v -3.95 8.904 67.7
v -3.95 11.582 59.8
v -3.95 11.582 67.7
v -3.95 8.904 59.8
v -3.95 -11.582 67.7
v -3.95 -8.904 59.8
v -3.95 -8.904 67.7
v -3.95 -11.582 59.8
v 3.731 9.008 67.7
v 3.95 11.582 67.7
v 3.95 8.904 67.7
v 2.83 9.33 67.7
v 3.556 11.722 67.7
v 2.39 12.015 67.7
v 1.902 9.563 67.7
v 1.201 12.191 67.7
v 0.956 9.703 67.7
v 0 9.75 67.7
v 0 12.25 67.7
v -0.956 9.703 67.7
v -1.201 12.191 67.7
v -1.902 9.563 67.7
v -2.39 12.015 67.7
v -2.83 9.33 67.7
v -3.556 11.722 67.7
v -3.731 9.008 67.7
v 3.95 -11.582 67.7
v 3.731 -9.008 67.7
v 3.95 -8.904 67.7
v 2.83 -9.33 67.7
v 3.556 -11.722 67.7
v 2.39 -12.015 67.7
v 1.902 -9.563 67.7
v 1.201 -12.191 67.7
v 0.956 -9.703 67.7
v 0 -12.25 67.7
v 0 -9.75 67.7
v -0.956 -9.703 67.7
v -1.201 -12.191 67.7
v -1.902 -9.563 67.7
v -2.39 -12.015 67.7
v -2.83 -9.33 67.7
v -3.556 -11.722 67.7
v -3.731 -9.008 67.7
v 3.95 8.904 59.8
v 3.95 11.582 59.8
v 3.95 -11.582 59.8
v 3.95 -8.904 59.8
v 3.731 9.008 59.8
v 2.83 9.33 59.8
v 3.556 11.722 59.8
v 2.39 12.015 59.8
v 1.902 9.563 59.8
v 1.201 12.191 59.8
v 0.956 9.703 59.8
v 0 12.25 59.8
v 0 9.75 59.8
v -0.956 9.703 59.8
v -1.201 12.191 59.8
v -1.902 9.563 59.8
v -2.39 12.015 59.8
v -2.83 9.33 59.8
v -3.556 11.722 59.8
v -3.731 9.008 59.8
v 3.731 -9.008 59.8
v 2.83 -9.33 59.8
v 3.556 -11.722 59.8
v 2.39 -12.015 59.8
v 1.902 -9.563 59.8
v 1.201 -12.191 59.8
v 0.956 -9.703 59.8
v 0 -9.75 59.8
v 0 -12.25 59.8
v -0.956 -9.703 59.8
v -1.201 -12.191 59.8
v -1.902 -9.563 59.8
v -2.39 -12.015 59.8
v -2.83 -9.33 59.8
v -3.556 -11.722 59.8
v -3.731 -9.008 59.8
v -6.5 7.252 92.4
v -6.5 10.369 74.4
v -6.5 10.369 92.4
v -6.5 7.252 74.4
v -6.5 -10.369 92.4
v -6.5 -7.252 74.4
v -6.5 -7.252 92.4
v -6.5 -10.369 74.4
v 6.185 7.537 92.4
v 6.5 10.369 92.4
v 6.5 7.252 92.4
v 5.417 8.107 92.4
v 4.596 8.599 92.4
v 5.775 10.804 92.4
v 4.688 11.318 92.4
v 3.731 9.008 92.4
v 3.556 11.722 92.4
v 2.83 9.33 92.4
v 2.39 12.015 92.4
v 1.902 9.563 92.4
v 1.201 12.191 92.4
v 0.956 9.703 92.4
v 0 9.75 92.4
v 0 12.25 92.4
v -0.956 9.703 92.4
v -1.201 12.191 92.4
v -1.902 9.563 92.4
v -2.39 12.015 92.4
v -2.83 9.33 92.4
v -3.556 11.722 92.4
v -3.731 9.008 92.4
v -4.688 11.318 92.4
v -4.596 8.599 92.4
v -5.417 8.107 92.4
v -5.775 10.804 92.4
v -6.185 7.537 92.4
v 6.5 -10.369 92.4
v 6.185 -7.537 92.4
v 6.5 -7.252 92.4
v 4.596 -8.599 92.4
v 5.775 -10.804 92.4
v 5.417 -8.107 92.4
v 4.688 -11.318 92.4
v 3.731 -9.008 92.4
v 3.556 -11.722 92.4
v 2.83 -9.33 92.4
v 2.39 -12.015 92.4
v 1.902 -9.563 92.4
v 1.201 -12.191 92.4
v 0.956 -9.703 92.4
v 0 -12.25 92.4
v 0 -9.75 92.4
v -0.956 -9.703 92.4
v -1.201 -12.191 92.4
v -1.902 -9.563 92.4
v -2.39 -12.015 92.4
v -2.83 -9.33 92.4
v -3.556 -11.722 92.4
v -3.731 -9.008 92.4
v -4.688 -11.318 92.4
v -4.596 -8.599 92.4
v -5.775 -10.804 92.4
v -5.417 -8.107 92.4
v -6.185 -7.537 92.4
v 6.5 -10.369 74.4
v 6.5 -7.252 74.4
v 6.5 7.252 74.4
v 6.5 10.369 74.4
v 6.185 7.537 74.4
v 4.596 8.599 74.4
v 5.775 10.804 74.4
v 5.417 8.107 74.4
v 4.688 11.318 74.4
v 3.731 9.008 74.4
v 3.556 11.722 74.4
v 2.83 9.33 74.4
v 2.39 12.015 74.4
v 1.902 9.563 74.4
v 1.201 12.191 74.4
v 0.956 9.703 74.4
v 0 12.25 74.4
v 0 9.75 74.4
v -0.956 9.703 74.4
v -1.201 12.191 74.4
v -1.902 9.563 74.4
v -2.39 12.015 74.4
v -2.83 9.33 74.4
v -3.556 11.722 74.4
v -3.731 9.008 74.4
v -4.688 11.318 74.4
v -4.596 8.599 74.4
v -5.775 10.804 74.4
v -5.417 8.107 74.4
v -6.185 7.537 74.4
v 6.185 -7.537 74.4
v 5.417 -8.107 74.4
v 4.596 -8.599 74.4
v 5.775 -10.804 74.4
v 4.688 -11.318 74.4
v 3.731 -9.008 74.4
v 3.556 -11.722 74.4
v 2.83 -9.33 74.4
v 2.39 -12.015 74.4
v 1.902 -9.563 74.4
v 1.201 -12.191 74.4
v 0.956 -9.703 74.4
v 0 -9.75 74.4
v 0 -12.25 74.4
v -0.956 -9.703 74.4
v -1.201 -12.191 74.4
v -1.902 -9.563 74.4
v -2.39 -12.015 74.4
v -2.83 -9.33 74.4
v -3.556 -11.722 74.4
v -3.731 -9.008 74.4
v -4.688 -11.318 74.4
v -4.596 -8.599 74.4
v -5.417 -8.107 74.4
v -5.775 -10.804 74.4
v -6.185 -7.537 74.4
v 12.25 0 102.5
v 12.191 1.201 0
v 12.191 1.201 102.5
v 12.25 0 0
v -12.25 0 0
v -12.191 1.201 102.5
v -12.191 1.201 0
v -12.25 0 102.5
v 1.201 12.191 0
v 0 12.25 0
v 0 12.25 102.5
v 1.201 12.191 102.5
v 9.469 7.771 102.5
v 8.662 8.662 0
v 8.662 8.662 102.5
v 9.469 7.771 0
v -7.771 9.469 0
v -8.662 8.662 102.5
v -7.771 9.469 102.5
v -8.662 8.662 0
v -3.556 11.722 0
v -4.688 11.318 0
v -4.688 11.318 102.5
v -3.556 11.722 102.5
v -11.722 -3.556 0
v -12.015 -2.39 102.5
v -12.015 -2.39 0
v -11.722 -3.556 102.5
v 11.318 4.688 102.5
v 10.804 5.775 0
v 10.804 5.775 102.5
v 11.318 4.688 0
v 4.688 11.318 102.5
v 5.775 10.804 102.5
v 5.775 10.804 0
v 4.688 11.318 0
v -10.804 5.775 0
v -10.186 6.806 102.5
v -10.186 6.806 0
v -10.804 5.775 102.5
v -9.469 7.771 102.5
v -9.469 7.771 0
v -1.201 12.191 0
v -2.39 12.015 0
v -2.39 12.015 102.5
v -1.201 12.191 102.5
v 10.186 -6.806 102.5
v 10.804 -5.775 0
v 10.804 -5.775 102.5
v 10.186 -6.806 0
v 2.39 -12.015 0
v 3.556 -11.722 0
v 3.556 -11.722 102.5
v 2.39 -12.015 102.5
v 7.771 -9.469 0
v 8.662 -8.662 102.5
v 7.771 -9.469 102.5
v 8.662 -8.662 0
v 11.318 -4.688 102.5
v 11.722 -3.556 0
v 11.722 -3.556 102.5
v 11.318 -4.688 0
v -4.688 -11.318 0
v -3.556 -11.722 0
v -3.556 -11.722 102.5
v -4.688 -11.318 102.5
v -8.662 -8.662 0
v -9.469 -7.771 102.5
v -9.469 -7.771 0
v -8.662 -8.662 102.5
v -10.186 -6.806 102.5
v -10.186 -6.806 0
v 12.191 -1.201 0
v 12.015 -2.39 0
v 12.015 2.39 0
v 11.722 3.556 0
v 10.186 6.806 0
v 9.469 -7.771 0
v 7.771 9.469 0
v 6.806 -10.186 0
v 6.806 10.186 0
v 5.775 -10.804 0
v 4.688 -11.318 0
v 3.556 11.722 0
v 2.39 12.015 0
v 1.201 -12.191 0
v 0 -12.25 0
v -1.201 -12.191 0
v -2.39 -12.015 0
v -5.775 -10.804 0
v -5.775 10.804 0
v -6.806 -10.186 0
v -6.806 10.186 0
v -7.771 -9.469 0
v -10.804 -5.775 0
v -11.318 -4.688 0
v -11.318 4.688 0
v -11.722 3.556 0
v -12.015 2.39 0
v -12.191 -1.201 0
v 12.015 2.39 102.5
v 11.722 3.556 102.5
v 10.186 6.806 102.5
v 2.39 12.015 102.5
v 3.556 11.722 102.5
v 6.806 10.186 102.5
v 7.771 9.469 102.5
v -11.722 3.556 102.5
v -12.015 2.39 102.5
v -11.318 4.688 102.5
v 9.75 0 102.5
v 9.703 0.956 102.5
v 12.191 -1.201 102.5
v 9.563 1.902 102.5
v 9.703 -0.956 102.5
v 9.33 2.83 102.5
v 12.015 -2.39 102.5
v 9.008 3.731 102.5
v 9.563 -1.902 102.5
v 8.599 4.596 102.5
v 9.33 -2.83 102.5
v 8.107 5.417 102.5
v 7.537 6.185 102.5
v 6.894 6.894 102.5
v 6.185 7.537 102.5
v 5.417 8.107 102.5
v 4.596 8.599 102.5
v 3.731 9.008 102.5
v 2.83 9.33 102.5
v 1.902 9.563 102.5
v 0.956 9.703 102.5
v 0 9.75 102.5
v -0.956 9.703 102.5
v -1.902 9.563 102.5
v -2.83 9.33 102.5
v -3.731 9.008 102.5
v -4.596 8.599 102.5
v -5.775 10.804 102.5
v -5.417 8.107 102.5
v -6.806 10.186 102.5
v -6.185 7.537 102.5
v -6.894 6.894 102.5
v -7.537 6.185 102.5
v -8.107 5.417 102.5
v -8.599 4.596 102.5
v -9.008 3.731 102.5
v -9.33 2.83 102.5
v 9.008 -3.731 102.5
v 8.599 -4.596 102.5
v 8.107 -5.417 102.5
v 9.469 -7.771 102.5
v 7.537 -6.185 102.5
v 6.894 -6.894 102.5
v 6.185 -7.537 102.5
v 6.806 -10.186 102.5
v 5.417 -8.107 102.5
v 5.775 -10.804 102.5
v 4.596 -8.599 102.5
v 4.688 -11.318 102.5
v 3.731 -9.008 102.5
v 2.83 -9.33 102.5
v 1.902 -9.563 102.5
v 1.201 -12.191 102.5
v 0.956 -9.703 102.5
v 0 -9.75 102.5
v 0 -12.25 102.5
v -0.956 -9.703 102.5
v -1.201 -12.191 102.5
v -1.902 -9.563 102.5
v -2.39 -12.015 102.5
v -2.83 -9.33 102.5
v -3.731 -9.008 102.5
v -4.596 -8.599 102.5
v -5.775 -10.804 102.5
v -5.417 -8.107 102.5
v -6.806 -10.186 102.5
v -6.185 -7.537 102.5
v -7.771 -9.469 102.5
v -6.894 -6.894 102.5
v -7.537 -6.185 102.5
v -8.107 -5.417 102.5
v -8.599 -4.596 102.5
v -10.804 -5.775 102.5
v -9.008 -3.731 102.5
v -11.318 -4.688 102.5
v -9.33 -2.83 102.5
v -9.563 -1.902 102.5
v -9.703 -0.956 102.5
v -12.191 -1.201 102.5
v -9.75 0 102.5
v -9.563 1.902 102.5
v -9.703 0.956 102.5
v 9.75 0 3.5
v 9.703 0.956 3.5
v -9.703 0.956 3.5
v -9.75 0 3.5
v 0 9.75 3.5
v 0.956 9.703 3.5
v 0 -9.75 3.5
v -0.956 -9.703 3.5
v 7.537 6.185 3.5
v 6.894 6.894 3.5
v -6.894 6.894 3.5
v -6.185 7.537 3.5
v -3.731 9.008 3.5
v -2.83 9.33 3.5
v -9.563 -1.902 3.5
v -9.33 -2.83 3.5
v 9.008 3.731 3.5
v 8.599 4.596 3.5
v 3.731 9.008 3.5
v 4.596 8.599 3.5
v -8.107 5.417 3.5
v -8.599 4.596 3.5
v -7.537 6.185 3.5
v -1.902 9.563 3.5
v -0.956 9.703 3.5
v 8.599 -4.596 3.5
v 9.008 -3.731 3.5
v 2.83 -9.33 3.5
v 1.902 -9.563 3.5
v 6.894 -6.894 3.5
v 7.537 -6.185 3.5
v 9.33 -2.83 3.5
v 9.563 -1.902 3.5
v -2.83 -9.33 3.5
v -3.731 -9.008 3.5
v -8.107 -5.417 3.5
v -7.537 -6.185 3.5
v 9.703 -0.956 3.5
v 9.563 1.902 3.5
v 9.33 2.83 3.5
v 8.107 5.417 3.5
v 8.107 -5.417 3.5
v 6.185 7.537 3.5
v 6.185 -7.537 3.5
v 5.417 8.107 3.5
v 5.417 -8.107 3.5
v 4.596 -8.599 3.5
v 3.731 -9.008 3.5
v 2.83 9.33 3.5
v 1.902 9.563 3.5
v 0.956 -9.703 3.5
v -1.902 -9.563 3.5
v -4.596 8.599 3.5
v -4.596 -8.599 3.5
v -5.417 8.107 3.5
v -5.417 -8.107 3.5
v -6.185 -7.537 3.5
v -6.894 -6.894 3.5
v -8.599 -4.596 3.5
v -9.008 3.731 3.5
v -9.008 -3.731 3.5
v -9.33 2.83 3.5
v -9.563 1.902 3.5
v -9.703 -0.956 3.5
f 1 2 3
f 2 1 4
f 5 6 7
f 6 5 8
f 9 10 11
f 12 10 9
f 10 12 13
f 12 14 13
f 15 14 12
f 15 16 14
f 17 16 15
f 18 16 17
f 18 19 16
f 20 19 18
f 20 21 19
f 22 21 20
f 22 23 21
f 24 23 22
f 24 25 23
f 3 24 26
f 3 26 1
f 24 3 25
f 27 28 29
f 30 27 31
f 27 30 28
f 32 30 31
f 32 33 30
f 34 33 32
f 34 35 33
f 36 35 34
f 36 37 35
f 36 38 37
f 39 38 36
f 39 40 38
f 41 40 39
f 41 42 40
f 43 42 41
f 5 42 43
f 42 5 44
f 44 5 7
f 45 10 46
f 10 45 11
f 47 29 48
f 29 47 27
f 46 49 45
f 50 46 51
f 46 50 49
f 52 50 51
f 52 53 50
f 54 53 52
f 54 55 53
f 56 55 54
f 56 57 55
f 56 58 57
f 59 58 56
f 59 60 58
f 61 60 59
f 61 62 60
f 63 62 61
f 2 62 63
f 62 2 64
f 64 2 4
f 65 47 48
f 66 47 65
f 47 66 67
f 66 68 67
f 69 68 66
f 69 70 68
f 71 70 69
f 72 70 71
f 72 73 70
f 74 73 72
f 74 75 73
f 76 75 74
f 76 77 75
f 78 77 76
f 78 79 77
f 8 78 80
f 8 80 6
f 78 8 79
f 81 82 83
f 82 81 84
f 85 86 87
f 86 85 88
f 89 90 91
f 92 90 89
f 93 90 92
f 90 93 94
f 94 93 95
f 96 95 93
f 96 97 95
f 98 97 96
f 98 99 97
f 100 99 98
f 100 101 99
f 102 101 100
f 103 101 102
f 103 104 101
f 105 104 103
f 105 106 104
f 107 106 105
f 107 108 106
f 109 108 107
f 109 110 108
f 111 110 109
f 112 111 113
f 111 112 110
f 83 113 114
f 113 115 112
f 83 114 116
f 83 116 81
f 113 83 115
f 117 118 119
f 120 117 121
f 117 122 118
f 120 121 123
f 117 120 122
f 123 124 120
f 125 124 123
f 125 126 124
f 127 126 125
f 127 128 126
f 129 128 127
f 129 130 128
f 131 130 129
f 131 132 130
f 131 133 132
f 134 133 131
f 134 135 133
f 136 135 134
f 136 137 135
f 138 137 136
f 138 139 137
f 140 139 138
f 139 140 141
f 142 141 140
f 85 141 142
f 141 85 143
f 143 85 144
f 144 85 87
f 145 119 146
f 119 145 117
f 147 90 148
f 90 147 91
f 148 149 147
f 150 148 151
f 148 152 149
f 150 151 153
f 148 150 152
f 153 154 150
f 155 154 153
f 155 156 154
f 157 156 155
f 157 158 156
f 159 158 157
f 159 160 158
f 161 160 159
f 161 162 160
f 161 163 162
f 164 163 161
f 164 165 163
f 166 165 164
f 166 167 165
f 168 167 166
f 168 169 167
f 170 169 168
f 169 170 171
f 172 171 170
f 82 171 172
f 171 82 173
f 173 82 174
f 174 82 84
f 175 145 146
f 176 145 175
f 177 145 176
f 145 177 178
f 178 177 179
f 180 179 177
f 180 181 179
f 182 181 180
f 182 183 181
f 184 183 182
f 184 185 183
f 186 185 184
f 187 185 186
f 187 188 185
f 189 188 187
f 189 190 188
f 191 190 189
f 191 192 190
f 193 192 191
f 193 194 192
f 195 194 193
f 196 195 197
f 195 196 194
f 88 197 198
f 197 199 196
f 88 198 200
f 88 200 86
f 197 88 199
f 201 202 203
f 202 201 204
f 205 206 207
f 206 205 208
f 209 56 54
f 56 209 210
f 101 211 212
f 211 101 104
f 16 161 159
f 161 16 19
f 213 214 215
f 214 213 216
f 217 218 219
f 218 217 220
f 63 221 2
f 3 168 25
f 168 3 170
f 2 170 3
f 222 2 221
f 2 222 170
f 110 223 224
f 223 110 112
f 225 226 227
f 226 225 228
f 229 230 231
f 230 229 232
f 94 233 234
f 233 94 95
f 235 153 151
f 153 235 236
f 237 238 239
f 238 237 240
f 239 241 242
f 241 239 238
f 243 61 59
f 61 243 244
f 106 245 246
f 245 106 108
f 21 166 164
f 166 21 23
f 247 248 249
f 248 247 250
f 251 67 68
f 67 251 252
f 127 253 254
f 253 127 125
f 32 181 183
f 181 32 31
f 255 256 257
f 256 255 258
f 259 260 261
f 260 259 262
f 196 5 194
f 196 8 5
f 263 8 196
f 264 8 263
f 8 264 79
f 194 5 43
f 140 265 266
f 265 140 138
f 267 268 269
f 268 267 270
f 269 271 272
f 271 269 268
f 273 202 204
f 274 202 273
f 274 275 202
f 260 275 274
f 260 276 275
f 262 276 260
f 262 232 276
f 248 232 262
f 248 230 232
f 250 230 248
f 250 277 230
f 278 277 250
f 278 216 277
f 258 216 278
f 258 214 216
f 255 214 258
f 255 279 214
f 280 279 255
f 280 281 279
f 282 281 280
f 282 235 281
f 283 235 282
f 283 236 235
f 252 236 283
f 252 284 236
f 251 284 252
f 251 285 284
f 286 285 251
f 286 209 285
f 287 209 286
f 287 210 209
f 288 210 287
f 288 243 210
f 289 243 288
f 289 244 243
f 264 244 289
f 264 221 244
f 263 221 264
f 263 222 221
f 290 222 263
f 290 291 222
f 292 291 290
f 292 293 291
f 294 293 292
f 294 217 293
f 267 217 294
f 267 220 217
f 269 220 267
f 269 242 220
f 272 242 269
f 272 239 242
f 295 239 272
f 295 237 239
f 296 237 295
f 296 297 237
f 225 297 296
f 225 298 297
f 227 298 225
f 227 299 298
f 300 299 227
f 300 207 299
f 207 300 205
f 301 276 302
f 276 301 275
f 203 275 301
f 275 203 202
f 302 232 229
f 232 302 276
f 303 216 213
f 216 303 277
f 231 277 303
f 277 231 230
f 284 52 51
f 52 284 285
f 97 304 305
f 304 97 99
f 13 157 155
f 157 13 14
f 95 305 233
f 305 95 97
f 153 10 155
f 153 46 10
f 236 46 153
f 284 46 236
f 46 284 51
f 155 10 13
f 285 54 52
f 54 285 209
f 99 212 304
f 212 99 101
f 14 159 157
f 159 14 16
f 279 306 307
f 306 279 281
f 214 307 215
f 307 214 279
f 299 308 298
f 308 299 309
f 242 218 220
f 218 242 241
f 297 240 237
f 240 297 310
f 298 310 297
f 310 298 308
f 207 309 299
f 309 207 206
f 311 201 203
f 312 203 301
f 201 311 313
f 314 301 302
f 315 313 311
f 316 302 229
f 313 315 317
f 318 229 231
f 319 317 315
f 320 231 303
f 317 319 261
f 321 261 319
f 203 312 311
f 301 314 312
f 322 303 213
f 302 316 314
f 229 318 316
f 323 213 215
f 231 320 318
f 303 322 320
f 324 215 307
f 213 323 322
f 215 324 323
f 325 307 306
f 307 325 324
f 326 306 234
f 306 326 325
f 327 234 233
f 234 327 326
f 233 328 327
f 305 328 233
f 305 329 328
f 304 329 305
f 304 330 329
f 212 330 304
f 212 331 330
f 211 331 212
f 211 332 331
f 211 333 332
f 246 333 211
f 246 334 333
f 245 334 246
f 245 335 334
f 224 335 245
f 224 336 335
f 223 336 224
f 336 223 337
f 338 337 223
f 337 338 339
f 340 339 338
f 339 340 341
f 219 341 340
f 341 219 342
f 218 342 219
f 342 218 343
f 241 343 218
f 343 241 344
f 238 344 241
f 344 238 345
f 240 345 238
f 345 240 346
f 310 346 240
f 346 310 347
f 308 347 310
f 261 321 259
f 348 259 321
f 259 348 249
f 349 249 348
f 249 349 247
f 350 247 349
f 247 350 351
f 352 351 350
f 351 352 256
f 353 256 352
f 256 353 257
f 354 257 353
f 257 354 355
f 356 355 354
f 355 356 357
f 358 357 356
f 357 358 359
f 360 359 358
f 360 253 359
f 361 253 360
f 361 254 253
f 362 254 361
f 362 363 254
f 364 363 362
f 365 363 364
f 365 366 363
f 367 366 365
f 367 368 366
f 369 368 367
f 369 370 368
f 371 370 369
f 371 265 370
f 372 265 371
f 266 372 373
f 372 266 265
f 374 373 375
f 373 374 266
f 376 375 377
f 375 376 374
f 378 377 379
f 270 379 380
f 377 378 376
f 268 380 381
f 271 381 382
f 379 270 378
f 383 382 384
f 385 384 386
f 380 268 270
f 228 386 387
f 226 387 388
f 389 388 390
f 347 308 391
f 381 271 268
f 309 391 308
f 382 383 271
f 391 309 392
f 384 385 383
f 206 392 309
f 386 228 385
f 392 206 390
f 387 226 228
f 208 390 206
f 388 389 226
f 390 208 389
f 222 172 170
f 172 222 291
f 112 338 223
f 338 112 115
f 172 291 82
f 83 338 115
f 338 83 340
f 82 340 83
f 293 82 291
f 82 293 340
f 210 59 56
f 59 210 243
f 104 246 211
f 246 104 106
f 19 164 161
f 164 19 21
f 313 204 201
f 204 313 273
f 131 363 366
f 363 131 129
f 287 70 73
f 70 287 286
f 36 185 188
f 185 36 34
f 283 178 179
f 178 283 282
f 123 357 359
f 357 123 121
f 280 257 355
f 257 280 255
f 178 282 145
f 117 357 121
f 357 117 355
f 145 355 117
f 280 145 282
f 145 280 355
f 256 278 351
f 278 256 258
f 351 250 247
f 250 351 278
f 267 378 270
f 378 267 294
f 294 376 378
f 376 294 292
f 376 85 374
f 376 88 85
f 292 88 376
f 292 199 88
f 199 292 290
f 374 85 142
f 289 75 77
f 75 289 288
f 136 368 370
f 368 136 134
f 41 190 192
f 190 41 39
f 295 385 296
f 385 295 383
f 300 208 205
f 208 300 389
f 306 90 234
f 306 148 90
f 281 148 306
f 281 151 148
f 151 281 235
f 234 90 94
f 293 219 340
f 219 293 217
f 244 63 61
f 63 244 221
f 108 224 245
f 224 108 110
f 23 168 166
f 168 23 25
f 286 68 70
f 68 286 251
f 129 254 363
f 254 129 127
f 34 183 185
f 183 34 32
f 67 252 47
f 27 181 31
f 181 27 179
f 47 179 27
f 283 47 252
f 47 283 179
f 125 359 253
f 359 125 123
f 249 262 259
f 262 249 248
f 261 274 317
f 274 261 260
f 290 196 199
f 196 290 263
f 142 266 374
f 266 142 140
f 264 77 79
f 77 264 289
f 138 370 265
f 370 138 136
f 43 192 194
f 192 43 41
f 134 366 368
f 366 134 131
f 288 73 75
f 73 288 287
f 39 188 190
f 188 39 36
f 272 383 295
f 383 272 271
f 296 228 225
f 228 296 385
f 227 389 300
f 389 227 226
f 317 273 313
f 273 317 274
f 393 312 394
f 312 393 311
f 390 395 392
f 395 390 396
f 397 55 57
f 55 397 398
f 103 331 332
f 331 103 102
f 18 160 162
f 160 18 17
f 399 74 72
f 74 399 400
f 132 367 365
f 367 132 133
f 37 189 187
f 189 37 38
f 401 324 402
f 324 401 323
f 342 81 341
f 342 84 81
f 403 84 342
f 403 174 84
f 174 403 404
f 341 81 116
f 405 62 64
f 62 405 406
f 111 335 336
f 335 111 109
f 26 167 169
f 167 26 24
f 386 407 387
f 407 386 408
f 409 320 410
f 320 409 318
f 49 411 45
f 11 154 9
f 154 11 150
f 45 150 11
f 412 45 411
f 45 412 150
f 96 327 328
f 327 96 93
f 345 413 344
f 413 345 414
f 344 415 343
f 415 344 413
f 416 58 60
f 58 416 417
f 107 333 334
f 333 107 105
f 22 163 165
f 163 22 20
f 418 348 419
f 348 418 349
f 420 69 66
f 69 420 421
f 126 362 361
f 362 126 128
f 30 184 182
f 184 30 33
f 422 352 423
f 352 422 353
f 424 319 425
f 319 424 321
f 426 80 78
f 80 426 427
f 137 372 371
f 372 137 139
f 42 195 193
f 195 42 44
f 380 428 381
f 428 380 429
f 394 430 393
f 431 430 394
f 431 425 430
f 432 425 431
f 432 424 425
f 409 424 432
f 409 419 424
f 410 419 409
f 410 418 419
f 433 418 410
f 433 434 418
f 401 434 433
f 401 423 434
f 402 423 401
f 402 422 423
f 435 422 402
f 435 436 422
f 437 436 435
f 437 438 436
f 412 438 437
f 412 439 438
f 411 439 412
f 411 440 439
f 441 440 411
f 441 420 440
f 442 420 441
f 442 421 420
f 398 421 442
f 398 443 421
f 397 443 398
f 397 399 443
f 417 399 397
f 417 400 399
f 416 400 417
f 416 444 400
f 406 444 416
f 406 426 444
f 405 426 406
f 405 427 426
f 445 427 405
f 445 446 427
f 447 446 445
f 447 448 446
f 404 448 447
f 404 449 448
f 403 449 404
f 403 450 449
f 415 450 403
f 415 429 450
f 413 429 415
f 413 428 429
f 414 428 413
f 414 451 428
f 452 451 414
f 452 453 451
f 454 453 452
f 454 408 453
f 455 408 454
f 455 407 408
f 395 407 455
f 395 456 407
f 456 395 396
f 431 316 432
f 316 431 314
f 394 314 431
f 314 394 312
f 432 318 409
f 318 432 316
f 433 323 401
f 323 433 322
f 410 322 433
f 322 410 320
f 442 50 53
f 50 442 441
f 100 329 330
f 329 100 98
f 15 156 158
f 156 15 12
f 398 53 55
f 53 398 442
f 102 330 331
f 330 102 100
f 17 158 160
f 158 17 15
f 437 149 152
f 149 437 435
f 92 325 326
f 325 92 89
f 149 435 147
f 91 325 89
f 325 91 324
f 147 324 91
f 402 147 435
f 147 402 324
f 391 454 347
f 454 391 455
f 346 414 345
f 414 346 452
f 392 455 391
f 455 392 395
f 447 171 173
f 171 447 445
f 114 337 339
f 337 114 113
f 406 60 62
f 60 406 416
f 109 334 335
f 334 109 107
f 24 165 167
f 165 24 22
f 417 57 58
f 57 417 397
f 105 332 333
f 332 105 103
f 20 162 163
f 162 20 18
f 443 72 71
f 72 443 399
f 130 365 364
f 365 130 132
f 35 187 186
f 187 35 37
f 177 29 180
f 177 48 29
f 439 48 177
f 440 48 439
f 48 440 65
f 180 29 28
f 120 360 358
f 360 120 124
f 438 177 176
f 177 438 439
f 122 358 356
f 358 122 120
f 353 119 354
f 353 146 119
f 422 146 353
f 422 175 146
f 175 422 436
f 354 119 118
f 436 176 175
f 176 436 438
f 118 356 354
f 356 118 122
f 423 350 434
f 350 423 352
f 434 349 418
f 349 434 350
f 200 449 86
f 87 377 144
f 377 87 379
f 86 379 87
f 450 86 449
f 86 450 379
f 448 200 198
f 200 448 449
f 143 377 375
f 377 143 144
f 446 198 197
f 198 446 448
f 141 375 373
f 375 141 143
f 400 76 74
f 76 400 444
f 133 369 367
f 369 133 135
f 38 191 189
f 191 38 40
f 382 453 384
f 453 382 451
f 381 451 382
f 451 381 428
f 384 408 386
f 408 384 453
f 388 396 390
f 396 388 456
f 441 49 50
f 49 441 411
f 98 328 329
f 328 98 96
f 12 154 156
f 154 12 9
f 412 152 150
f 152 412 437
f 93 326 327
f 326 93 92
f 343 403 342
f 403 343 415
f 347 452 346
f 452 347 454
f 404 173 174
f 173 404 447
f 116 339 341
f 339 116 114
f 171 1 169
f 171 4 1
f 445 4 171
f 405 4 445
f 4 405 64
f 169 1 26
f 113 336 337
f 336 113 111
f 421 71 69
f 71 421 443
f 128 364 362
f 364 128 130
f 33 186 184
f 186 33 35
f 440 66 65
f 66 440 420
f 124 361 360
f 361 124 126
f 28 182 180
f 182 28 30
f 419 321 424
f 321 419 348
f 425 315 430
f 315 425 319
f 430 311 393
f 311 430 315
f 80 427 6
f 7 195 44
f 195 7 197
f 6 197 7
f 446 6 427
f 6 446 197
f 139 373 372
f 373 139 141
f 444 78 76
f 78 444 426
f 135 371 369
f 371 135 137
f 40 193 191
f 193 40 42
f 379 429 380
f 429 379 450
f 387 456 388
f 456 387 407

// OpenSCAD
$fn = 64;

d = 19.5;
h = 100;
o_button = 57.3;
h_button = 7.9;
o_window = 71.9;
w1_window = h_button;
w2_window = 13;
h_window = 18;
wall_strength = 2.5;

difference() {
    cylinder(r=(d/2)+wall_strength, h=h+wall_strength);
    
    translate([0, 0, wall_strength+1]) {
        cylinder(r=(d/2), h=h);
    }
    translate([0, 0, wall_strength]) {
        translate([-h_button/2, -(d+2*wall_strength+2)/2, o_button]) {
            cube([h_button, (d+2*wall_strength+2), h_button]);
        }
        
        translate([-w2_window/2, -(d+2*wall_strength+2)/2, o_window]) {
            cube([w2_window, (d+2*wall_strength+2), h_window]);
        }
    }
}
